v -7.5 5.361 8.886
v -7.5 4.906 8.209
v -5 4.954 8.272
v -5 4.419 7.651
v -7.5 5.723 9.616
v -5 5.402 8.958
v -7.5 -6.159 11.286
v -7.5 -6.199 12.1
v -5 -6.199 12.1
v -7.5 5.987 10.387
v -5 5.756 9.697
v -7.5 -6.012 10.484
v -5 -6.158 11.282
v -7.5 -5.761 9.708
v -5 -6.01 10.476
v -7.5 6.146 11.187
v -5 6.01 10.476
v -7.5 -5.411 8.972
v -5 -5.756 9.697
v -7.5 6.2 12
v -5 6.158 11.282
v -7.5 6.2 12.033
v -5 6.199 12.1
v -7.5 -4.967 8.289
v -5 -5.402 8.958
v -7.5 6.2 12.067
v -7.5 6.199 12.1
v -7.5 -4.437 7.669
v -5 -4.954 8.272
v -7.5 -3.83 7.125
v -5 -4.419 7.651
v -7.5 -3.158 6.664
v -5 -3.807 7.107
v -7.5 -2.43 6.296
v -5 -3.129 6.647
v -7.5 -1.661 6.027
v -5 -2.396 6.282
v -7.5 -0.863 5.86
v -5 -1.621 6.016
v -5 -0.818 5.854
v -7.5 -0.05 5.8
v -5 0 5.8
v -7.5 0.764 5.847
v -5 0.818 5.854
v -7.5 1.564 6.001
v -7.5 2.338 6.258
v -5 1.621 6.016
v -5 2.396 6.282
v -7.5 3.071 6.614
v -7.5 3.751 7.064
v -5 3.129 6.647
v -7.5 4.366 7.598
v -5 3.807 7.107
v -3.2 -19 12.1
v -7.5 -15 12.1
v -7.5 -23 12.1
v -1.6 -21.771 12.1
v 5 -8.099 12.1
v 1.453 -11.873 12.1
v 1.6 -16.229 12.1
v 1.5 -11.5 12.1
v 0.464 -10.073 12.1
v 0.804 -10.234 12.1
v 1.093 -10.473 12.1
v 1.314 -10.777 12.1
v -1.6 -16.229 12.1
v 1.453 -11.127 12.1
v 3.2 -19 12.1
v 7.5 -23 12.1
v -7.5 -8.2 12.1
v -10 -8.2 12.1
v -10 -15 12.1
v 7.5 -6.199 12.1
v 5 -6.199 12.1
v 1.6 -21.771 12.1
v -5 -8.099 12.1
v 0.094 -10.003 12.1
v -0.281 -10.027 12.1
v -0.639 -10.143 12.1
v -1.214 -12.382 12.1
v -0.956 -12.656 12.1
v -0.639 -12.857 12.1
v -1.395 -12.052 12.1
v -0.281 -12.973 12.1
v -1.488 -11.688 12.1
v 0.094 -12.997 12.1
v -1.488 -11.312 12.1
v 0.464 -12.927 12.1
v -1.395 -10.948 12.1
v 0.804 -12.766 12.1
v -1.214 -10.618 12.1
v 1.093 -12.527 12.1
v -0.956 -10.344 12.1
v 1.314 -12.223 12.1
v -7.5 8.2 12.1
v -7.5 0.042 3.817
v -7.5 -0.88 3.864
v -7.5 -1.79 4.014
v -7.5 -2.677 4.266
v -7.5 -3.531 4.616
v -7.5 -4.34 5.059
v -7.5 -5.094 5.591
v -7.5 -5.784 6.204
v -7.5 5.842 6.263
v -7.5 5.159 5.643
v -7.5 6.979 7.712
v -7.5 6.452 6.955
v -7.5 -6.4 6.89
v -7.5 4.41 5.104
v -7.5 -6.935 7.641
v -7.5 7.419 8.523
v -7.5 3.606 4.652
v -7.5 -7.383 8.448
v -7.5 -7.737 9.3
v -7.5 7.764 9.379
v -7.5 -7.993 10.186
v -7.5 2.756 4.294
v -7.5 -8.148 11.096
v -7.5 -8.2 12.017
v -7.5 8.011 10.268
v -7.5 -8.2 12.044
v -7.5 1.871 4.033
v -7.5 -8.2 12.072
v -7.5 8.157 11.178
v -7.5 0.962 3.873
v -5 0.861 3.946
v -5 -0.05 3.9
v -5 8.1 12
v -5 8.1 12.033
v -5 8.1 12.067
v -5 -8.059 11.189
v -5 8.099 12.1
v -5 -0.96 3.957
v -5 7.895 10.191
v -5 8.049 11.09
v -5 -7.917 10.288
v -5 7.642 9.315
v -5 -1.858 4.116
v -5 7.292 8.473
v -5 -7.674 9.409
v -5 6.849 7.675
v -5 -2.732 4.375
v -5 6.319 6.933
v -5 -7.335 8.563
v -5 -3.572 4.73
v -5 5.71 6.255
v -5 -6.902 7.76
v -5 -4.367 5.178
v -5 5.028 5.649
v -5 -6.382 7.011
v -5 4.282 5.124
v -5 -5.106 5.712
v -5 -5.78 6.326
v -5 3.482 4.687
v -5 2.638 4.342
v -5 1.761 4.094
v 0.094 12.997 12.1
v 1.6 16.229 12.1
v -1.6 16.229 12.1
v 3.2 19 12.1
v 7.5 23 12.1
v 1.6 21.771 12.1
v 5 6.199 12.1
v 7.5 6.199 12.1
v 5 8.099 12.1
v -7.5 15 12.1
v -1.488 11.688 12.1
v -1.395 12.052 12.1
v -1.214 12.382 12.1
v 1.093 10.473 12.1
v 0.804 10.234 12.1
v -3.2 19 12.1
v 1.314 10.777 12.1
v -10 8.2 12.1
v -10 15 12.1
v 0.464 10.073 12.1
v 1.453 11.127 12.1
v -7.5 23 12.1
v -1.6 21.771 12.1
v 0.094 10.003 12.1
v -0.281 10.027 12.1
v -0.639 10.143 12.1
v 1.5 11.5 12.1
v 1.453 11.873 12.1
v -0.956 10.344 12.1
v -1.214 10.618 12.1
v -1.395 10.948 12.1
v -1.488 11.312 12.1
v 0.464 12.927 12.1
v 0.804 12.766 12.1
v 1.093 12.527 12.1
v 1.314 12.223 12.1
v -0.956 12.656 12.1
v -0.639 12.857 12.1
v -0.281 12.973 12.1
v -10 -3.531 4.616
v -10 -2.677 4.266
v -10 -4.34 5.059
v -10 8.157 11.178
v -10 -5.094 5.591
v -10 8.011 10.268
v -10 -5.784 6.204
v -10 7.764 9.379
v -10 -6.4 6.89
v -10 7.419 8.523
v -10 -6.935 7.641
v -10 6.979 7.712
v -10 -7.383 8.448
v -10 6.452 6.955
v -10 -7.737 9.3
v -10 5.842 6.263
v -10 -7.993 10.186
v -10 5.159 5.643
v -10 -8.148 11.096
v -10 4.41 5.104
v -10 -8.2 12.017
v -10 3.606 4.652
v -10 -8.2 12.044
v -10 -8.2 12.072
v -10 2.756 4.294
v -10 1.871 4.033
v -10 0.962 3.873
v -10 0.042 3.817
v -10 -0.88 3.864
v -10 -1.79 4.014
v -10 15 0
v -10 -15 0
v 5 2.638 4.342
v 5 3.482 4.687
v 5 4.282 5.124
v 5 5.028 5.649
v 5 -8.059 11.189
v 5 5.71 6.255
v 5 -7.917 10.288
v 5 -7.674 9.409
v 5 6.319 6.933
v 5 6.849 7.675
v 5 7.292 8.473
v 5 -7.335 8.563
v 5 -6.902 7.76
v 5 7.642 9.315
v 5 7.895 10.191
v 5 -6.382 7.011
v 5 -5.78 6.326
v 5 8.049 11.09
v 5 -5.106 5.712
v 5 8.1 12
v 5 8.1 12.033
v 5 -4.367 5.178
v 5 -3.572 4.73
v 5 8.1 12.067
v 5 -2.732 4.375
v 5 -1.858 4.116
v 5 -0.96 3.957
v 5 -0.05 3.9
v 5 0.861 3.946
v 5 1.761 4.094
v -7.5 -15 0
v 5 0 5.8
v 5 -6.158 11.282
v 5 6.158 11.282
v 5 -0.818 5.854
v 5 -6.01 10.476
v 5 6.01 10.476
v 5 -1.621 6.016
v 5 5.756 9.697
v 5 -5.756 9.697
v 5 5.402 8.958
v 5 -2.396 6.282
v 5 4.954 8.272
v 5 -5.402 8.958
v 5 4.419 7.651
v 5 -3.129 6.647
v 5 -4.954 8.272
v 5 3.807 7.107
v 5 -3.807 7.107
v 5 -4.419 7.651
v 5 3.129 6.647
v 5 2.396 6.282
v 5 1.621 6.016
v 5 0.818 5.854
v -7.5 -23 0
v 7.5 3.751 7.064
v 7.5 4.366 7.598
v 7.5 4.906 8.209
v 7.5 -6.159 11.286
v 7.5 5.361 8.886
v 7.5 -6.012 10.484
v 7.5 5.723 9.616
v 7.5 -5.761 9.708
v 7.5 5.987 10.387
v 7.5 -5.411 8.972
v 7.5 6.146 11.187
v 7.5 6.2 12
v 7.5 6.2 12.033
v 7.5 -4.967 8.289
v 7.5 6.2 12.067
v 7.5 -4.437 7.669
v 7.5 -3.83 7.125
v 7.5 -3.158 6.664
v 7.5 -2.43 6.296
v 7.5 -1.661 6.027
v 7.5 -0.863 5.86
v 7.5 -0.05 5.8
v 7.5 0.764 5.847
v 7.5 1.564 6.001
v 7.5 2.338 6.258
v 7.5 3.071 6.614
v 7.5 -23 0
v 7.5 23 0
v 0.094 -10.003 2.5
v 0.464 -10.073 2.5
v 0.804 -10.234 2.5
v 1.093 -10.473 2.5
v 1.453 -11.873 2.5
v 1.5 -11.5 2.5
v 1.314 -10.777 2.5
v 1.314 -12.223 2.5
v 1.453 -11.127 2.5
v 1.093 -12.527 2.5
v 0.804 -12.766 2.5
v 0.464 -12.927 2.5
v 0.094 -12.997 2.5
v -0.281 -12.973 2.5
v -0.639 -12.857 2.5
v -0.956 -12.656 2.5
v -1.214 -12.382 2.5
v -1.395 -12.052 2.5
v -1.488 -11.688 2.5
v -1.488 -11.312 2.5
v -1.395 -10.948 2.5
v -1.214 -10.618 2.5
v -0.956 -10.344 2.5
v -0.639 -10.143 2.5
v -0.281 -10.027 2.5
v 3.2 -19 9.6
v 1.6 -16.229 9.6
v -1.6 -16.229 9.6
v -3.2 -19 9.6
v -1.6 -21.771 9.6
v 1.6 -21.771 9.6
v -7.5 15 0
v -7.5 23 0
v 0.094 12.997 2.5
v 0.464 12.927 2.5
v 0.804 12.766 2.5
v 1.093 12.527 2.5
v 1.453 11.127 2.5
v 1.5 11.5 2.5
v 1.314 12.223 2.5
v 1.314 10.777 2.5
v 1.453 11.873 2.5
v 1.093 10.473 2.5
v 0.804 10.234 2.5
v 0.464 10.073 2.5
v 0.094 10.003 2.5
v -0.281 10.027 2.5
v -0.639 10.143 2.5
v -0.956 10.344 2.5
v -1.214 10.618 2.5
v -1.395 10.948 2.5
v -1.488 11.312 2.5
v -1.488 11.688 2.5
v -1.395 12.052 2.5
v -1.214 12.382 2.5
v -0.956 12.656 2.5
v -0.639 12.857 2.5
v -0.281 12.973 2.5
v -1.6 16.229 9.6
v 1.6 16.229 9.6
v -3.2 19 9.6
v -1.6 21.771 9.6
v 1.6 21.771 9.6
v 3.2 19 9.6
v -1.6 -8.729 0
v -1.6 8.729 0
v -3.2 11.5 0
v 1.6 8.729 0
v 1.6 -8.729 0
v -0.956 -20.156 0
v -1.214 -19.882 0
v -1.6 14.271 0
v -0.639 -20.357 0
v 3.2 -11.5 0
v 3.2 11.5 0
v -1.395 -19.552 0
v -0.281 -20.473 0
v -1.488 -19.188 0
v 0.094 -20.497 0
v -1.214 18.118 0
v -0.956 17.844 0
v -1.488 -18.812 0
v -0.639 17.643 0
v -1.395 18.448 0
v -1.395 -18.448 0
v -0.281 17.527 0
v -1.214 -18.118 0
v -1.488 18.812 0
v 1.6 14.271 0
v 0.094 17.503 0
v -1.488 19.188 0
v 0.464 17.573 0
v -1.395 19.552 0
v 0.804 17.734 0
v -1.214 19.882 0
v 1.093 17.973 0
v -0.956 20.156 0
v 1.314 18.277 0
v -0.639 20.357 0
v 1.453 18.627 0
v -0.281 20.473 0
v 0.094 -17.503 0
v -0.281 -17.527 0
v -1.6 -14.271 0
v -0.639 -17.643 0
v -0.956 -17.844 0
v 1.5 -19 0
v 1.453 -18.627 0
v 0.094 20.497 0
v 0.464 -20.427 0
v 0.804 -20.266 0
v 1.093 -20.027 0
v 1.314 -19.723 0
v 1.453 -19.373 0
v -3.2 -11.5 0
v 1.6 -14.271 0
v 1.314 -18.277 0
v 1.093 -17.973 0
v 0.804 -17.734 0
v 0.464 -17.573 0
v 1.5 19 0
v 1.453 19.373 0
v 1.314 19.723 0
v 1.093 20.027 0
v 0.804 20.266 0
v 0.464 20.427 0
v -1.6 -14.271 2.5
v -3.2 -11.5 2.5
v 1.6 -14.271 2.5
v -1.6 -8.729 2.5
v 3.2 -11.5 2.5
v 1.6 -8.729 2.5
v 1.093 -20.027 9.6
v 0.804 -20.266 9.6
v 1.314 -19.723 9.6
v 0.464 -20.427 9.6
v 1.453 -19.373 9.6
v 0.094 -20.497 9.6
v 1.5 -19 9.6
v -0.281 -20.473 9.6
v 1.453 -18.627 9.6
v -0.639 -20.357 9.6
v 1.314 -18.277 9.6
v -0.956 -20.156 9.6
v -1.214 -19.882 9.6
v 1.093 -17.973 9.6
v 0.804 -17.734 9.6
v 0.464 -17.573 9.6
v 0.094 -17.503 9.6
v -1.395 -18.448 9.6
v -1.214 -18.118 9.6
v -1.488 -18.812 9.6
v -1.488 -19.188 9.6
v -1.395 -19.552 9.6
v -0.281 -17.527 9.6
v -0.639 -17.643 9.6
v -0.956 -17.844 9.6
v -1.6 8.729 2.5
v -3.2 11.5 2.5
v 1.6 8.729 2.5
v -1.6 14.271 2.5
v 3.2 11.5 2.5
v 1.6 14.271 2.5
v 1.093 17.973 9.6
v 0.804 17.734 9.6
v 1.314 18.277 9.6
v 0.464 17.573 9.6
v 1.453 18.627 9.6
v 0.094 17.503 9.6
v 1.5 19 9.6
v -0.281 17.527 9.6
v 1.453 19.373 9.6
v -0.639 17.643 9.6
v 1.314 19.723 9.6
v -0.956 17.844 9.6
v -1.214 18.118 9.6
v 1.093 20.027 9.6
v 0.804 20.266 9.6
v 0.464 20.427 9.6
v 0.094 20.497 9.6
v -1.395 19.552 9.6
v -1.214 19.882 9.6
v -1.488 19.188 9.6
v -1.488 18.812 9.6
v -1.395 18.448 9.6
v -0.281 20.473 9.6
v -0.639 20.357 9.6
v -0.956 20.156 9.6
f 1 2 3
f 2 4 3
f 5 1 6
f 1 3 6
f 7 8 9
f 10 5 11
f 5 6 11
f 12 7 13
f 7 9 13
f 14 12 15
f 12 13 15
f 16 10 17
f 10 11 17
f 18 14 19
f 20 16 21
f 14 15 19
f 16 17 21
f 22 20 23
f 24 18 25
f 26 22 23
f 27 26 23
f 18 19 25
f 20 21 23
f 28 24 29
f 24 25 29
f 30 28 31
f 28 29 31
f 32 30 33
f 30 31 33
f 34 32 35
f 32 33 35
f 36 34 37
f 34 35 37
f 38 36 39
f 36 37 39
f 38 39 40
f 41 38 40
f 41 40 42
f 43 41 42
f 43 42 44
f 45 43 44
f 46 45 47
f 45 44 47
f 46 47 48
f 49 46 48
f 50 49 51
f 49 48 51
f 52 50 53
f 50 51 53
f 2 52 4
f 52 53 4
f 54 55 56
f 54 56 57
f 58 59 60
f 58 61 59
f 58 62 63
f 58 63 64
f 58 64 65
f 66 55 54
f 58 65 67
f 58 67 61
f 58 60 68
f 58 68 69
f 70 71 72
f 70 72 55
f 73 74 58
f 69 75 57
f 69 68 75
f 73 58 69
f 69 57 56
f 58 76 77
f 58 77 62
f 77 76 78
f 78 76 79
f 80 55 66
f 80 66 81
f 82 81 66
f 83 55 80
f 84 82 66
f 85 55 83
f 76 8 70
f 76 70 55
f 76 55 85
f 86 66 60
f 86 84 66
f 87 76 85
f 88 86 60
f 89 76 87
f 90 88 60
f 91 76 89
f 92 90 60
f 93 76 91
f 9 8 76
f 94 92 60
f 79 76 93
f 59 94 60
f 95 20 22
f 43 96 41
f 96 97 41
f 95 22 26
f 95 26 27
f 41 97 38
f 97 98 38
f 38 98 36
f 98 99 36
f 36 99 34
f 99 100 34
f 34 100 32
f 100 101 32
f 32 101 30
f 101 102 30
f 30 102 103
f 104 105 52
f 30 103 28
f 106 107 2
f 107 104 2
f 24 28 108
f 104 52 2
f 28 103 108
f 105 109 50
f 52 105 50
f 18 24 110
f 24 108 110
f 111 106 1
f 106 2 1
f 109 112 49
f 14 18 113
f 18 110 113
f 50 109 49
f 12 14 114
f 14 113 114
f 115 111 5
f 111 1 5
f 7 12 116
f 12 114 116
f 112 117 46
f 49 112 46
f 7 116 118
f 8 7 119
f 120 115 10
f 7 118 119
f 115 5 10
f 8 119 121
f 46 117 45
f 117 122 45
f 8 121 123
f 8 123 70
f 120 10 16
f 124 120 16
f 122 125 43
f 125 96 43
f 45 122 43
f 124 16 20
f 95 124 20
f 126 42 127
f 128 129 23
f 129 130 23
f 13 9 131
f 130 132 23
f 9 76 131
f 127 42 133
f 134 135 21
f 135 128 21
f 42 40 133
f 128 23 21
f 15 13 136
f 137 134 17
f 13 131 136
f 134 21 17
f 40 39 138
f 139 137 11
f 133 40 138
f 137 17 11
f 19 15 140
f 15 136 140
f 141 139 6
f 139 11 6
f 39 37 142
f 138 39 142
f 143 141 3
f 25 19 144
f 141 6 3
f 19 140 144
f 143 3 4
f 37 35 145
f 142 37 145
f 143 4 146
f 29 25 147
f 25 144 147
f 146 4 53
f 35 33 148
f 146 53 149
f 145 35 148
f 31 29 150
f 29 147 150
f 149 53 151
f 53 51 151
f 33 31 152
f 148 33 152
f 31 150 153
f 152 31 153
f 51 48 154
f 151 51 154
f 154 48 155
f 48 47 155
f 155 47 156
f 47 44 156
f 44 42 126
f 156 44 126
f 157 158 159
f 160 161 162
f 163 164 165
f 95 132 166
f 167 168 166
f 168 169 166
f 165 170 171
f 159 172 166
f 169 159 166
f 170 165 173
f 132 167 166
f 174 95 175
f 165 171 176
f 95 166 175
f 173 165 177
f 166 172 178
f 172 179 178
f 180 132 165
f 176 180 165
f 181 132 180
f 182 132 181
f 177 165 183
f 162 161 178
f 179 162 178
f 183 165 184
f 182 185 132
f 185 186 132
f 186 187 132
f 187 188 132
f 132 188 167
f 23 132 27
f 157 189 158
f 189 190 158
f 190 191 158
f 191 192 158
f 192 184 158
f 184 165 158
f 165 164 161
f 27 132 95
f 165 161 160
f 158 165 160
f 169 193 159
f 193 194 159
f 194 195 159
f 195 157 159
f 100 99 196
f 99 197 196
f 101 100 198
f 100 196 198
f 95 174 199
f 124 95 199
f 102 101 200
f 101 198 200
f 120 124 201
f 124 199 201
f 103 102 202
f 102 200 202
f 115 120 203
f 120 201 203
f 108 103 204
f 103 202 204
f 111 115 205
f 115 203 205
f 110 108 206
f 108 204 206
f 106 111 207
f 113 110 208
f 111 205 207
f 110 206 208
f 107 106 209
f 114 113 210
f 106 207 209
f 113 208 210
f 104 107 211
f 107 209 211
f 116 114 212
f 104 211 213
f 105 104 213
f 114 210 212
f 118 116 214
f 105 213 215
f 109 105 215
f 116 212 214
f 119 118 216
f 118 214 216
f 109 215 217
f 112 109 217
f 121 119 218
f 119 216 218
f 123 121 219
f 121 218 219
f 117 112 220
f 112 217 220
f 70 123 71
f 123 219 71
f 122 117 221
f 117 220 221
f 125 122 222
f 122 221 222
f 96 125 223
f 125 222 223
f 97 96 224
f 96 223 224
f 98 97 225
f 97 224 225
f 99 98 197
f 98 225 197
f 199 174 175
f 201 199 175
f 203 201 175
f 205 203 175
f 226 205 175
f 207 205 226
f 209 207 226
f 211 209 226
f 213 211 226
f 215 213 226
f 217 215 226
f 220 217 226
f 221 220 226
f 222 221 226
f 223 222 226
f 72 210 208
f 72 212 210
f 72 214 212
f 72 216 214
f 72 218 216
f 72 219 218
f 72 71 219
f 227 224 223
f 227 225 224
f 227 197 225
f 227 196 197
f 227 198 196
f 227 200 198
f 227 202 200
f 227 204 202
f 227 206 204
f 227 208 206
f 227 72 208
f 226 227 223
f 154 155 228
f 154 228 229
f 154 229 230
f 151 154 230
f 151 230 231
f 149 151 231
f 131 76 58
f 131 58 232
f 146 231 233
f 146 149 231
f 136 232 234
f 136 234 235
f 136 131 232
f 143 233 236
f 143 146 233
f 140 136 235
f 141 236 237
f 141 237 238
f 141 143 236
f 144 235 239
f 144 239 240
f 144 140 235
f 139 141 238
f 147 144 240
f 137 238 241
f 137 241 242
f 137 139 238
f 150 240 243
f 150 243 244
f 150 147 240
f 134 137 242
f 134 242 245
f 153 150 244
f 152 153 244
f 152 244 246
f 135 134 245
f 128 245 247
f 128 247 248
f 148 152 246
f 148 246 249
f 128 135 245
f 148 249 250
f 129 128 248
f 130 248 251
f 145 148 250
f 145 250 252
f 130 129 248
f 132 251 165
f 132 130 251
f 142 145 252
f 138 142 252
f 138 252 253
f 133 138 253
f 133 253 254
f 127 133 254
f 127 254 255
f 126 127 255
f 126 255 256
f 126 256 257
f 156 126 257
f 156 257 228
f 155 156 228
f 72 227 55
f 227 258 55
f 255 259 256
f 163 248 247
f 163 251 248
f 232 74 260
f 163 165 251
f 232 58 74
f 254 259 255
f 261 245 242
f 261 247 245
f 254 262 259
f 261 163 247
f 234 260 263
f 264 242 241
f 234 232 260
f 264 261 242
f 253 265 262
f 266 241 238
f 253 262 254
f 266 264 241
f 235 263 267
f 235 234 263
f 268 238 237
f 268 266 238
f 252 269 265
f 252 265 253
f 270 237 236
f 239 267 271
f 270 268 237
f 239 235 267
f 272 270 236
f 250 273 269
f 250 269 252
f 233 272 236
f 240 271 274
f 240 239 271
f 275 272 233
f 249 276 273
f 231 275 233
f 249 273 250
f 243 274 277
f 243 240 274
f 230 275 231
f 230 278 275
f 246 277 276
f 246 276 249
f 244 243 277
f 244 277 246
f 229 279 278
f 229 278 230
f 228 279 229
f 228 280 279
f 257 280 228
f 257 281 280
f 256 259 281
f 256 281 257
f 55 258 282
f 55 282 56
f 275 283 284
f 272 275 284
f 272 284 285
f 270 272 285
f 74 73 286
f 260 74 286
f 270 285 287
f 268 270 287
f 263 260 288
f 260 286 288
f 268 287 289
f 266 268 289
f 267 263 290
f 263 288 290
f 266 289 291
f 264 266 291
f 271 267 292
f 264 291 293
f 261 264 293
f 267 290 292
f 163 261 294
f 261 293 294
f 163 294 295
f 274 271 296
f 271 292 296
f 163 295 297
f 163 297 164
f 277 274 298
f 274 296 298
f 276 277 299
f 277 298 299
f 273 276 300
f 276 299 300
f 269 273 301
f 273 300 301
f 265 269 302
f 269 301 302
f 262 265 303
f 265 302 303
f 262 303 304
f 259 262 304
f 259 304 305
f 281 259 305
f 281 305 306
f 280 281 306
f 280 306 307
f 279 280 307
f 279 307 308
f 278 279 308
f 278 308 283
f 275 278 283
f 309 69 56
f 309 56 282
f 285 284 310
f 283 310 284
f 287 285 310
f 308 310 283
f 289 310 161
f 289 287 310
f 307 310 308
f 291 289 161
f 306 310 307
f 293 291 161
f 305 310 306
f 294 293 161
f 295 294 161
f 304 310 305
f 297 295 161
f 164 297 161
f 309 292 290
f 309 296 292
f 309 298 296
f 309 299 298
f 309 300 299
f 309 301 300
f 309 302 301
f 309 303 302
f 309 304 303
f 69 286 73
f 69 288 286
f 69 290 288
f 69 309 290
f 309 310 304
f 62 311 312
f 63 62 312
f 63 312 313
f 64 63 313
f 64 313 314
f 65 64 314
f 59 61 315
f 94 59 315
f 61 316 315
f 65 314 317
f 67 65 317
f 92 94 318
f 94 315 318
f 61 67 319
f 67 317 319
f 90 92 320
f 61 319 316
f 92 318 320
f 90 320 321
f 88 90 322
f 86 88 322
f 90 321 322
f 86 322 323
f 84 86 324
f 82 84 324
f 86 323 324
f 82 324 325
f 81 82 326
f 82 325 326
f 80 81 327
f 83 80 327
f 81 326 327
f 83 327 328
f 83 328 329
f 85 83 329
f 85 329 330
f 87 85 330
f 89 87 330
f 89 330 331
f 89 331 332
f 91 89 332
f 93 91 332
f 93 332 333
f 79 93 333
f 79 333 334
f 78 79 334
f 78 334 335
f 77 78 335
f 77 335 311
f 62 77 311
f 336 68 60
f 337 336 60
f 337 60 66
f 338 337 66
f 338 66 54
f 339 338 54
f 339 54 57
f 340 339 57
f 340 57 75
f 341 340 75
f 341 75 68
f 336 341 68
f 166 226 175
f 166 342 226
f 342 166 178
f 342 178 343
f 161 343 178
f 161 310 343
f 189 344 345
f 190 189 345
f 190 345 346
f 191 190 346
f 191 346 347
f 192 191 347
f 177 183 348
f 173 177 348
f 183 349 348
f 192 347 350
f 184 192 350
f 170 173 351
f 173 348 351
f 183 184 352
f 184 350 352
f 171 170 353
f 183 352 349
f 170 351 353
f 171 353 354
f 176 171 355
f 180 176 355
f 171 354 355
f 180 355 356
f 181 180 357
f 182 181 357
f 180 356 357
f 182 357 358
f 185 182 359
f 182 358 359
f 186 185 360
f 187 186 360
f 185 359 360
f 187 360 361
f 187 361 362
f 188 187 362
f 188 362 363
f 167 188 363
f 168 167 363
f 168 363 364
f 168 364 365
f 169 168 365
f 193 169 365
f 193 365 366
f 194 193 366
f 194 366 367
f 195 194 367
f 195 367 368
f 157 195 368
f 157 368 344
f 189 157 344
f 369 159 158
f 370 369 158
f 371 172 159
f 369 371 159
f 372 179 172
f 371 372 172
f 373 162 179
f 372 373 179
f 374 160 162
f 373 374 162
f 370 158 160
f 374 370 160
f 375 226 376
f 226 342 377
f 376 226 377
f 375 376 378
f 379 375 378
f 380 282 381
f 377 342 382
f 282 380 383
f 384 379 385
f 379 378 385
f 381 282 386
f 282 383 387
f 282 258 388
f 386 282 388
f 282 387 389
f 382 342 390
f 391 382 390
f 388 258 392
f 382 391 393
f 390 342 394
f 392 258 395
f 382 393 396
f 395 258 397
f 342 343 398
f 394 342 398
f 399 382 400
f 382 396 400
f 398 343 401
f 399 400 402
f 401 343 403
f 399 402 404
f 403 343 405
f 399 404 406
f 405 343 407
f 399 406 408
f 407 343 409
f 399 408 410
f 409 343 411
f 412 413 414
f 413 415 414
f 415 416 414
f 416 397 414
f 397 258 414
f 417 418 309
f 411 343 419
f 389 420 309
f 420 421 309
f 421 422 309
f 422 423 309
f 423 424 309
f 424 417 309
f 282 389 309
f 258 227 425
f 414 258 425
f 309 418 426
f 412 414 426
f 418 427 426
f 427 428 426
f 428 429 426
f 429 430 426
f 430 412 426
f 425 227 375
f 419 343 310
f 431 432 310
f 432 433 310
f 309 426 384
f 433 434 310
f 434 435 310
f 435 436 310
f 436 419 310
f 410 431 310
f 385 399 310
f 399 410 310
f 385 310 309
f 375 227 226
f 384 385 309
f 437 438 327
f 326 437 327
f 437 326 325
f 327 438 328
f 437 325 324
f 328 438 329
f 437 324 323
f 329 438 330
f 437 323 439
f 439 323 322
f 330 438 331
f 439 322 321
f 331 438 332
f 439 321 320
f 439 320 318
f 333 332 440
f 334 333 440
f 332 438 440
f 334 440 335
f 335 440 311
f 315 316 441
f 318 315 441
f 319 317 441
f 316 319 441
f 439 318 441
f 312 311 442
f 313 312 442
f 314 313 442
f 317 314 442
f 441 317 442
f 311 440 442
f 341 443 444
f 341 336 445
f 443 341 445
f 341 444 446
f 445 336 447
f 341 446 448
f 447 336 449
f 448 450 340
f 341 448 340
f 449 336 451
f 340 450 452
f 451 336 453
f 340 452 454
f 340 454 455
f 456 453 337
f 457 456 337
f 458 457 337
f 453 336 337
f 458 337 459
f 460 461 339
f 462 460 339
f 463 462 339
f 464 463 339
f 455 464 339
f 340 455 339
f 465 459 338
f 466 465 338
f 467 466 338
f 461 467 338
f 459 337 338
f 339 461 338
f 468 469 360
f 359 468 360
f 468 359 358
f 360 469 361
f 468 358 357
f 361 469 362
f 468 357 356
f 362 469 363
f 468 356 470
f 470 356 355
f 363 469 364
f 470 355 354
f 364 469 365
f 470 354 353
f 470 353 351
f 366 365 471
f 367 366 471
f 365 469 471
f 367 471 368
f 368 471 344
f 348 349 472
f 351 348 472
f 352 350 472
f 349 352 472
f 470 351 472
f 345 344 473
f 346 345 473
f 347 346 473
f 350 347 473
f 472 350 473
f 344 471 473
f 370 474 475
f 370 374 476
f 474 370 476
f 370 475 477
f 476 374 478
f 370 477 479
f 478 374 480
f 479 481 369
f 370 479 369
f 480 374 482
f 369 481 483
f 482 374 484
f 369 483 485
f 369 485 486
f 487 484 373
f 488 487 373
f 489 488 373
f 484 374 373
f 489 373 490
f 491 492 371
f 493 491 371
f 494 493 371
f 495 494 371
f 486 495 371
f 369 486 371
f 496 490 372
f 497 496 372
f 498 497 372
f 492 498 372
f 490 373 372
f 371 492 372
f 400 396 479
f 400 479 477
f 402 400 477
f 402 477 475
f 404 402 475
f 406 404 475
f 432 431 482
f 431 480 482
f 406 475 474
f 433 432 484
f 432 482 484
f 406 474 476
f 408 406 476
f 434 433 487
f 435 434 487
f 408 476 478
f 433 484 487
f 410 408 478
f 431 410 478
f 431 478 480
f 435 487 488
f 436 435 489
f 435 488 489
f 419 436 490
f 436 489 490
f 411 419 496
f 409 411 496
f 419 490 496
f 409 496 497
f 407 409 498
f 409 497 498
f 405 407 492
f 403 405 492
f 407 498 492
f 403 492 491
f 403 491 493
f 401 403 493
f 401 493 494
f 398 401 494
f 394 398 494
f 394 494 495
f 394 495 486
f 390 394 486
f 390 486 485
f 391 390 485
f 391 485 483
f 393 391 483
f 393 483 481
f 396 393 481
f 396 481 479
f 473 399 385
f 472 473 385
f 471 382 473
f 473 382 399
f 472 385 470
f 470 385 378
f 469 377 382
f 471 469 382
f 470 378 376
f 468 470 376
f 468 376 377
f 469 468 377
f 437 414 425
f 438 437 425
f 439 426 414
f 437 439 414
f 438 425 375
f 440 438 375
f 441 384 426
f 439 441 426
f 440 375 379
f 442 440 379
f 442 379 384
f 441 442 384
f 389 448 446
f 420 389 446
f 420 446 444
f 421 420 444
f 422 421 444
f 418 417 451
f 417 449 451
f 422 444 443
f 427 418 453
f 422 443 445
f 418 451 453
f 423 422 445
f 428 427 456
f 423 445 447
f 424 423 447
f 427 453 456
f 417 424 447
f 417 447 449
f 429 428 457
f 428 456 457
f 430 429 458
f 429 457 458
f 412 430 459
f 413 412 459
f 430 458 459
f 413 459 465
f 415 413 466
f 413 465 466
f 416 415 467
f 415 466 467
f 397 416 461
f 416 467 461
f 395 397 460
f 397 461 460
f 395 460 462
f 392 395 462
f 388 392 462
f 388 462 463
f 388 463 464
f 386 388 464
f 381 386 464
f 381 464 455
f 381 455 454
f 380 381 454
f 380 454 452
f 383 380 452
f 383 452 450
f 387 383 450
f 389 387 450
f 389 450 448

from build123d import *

# Parameters (mm, degrees)
SKETCH002_R     = 8.1
PAD001_DEPTH    = 5
SKETCH_W        = 15
SKETCH_H        = 30
PAD_DEPTH       = 12.1
SKETCH001_R     = 6.2
POCKET_DEPTH    = 15.001
SKETCH003_R     = 1.5
POCKET001_DEPTH = 12.101
POCKET002_DEPTH = 2.5
SKETCH005_W     = 30
SKETCH005_H     = 12.1
PAD002_DEPTH    = 2.5
SKETCH006_R     = 8.2
POCKET003_DEPTH = 2.5
SKETCH007_W     = 15
SKETCH007_H     = 12.1
PAD003_DEPTH    = 8
SKETCH008_W     = 15
SKETCH008_H     = 12.1
PAD004_DEPTH    = 8
SKETCH009_R     = 1.5
POCKET004_DEPTH = 12.101
POCKET005_DEPTH = 2.5


with BuildPart() as pad001:
    # Sketch002 → Pad001 (new body, symmetric)
    with BuildSketch(Plane.YZ):
        with Locations((0, 12)):
            Circle(SKETCH002_R)
    extrude(amount=PAD001_DEPTH, both=True)


with BuildPart() as pocket005:
    # Sketch → Pad (new body)
    with BuildSketch(Plane.XY):
        Rectangle(SKETCH_W, SKETCH_H)
    extrude(amount=PAD_DEPTH)

    # Sketch001 → Pocket (cut, through all)
    with BuildSketch(Plane.YZ.offset(7.5)):
        with Locations((0, 12)):
            Circle(SKETCH001_R)
    extrude(amount=-POCKET_DEPTH, mode=Mode.SUBTRACT)

    # Cut: cut Pad001
    add(pad001.part, mode=Mode.SUBTRACT)

    # Sketch003 → Pocket001 (cut, through all)
    with BuildSketch(Plane(origin=(0, 0, 0), x_dir=(1, 0, 0), z_dir=(0, 0, -1))):
        with Locations((0, 11.5)):
            Circle(SKETCH003_R)
        with Locations((0, -11.5)):
            Circle(SKETCH003_R)
    extrude(amount=-POCKET001_DEPTH, mode=Mode.SUBTRACT)

    # Sketch004 → Pocket002 (cut)
    with BuildSketch(Plane(origin=(0, 0, 0), x_dir=(1, 0, 0), z_dir=(0, 0, -1))):
        Polygon((3.2, 11.5), (1.6, 14.271281), (-1.6, 14.271281), (-3.2, 11.5), (-1.6, 8.728719), (1.6, 8.728719), align=None)
        Polygon((1.6, -14.271281), (3.2, -11.5), (1.6, -8.728719), (-1.6, -8.728719), (-3.2, -11.5), (-1.6, -14.271281), align=None)
    extrude(amount=-POCKET002_DEPTH, mode=Mode.SUBTRACT)

    # Sketch005 → Pad002 (new body)
    with BuildSketch(Plane(origin=(-7.5, 0, 0), x_dir=(0, -1, 0), z_dir=(-1, 0, 0))):
        with Locations((0, 6.05)):
            Rectangle(SKETCH005_W, SKETCH005_H)
    extrude(amount=PAD002_DEPTH)

    # Sketch006 → Pocket003 (cut)
    with BuildSketch(Plane(origin=(-10, 0, 0), x_dir=(0, -1, 0), z_dir=(-1, 0, 0))):
        with Locations((0, 12.016602)):
            Circle(SKETCH006_R)
    extrude(amount=-POCKET003_DEPTH, mode=Mode.SUBTRACT)

    # Sketch007 → Pad003 (new body)
    with BuildSketch(Plane.XZ.offset(15)):
        with Locations((0, 6.05)):
            Rectangle(SKETCH007_W, SKETCH007_H)
    extrude(amount=PAD003_DEPTH)

    # Sketch008 → Pad004 (new body)
    with BuildSketch(Plane(origin=(0, 15, 0), x_dir=(-1, 0, 0), z_dir=(0, 1, 0))):
        with Locations((0, 6.05)):
            Rectangle(SKETCH008_W, SKETCH008_H)
    extrude(amount=PAD004_DEPTH)

    # Sketch009 → Pocket004 (cut, through all)
    with BuildSketch(Plane.XY.offset(12.1)):
        with Locations((0, -19)):
            Circle(SKETCH009_R)
        with Locations((0, 19)):
            Circle(SKETCH009_R)
    extrude(amount=-POCKET004_DEPTH, mode=Mode.SUBTRACT)

    # Sketch010 → Pocket005 (cut)
    with BuildSketch(Plane.XY.offset(12.1)):
        Polygon((1.6, -21.771281), (3.2, -19), (1.6, -16.228719), (-1.6, -16.228719), (-3.2, -19), (-1.6, -21.771281), align=None)
        Polygon((1.6, 16.228719), (3.2, 19), (1.6, 21.771281), (-1.6, 21.771281), (-3.2, 19), (-1.6, 16.228719), align=None)
    extrude(amount=-POCKET005_DEPTH, mode=Mode.SUBTRACT)


solid = pocket005.part
